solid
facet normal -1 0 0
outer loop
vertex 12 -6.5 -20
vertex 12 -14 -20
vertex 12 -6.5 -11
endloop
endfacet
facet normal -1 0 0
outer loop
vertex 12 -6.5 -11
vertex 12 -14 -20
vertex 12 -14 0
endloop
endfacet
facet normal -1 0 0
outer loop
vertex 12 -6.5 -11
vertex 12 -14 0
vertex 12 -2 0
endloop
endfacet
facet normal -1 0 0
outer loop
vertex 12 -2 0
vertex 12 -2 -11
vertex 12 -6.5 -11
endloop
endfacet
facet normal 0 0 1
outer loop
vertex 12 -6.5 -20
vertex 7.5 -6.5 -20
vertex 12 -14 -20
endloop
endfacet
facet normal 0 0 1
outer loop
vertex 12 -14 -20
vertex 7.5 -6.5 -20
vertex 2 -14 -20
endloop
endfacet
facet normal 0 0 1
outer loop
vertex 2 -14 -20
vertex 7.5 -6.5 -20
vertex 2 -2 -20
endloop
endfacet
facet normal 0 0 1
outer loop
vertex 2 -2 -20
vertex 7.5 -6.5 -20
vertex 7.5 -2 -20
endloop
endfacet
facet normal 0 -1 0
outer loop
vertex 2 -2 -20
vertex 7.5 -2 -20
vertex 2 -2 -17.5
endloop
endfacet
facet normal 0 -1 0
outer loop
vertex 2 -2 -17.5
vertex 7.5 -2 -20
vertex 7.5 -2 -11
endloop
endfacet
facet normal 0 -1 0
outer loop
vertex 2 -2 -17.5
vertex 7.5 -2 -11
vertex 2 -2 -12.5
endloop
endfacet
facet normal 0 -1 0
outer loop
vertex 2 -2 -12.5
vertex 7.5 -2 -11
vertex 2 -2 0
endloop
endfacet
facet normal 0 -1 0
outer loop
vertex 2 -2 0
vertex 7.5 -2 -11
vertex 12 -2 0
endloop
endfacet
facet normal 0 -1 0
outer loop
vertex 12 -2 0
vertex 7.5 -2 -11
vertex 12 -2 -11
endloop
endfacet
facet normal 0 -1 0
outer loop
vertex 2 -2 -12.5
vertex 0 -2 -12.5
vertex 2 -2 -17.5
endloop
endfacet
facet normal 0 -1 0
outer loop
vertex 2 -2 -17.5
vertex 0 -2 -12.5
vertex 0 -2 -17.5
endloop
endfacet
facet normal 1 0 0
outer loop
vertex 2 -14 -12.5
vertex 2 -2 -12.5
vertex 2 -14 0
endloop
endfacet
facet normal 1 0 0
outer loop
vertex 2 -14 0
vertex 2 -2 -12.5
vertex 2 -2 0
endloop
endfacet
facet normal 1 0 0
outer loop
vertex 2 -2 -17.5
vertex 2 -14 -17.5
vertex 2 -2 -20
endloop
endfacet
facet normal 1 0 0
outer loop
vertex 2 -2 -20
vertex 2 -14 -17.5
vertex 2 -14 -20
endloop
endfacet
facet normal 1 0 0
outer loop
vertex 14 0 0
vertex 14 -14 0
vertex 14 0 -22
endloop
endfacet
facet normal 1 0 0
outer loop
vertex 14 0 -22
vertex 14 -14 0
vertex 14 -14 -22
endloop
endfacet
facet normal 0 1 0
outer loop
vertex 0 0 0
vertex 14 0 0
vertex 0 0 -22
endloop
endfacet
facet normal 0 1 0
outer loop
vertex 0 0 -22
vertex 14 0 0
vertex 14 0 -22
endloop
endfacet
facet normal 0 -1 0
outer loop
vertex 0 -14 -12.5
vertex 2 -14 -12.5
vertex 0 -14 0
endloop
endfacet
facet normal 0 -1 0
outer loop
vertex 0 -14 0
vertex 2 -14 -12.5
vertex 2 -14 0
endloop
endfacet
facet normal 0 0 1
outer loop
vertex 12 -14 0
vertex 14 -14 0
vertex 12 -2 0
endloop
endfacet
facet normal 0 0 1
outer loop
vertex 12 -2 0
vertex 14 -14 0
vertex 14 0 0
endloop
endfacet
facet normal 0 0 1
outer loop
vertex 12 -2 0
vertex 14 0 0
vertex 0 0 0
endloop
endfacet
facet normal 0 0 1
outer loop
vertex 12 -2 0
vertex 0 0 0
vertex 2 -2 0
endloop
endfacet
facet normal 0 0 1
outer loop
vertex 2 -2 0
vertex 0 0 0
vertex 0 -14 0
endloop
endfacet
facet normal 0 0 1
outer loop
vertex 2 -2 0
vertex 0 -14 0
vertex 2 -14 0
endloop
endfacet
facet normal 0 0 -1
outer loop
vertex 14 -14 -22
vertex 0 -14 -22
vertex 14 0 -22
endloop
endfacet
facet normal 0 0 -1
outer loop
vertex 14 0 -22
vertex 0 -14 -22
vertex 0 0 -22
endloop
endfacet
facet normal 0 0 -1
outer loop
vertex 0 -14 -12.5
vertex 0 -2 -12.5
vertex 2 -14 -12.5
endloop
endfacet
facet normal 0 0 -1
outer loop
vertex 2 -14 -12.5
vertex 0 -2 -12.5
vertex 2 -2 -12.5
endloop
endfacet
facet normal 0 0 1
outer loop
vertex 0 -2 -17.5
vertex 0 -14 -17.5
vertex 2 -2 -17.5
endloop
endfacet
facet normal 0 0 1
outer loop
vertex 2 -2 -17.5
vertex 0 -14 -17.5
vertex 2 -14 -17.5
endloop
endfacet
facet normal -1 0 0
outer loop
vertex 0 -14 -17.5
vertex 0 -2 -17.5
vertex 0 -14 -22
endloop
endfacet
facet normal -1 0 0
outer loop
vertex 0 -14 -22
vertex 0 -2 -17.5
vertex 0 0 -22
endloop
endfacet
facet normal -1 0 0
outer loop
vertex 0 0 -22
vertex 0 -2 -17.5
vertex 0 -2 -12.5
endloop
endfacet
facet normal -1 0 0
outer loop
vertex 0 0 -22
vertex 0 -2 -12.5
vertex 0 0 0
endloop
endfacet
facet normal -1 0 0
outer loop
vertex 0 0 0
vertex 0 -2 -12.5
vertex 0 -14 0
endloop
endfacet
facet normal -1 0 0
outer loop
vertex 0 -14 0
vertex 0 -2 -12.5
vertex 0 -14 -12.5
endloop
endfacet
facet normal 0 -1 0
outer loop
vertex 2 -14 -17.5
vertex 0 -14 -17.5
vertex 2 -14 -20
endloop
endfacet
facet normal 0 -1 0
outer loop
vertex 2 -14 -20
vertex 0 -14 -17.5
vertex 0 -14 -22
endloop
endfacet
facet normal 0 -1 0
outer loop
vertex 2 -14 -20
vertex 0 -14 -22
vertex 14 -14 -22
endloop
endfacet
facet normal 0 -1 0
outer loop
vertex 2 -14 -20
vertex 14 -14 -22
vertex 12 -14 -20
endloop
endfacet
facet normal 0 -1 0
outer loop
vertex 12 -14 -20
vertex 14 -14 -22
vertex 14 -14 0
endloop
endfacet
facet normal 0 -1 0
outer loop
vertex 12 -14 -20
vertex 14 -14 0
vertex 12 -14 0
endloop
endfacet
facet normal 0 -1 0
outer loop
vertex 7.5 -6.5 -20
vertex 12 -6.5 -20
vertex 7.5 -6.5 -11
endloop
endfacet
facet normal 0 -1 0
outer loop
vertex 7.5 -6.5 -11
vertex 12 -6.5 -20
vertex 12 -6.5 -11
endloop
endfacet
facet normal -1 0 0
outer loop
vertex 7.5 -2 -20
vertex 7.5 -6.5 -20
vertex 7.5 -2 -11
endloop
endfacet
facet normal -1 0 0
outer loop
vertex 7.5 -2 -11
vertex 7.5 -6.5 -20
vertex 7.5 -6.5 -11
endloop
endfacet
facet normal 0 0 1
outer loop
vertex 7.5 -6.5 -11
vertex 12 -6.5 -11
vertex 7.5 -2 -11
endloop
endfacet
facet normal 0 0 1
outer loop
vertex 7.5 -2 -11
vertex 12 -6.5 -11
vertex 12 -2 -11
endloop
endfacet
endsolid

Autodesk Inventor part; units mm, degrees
ref_plane "YZ Plane" through (0, 0, 0) normal (1, 0, 0) x (0, 1, 0)
ref_plane "XZ Plane" through (0, 0, 0) normal (0, 1, 0) x (-1, 0, 0)
ref_plane "XY Plane" through (0, 0, 0) normal (0, 0, 1) x (1, 0, 0)
sketch "Sketch1" plane through (0, 0, 0) normal (0, 0, 1) x (1, 0, 0)
  line L0 (0, 0) -> (14, 0)
  line L1 (14, 0) -> (14, -14)
  line L2 (14, -14) -> (0, -14)
  line L3 (0, -14) -> (0, 0)
  dimension "d0" = 14
  dimension "d1" = 14
extrude "Extrusion1" add sketch "Sketch1" against normal blind 22
sketch "Sketch2" plane through (0, 0, 0) normal (0, 0, 1) x (1, 0, 0)
  line L0 (2, -2) -> (12, -2)
  line L1 (12, -2) -> (12, -22)
  line L2 (12, -22) -> (2, -22)
  line L3 (2, -22) -> (2, -2)
  point P0 (0, 0)
  dimension "d4" = 10
  dimension "d5" = 20
extrude "Extrusion2" cut sketch "Sketch2" against normal blind 20
sketch "Sketch8" plane through (0, -14, 0) normal (-1, 0, 0) x (0, 0, 1)
  point P0 (0, 14)
sketch "Sketch9" plane through (0, -14, 0) normal (-1, 0, 0) x (0, 0, 1)
  point P0 (0, 14)
sketch "Sketch11" plane through (0, -14, 0) normal (-1, 0, 0) x (0, 0, 1)
  point P0 (0, 14)
sketch "Sketch14" plane through (0, -14, 0) normal (-1, 0, 0) x (0, 0, 1)
  point P0 (0, 14)
sketch "Sketch15" plane through (0, -14, 0) normal (-1, 0, 0) x (0, 0, 1)
  point P0 (0, 14)
sketch "Sketch16" plane through (0, -14, 0) normal (-1, 0, 0) x (0, 0, 1)
  line L0 (-12.5, 12) -> (-17.5, 12)
  line L1 (-17.5, 12) -> (-17.5, 0)
  line L2 (-17.5, 0) -> (-12.5, 0)
  line L3 (-12.5, 0) -> (-12.5, 12)
  point P0 (0, 14)
  dimension "d30" = 5
  dimension "d31" = 12
extrude "Extrusion10" cut sketch "Sketch16" against normal blind 2
sketch "Sketch17" plane through (0, 0, -20) normal (0, 0, 1) x (1, 0, 0)
  line L0 (12, -2) -> (7.5, -2)
  line L1 (7.5, -2) -> (7.5, -6.5)
  line L2 (7.5, -6.5) -> (12, -6.5)
  line L3 (12, -6.5) -> (12, -2)
  point P0 (0, 0)
  dimension "d34" = 4.5
  dimension "d35" = 4.5
extrude "Extrusion11" add sketch "Sketch17" along normal blind 9
properties part number "housing_v06"
